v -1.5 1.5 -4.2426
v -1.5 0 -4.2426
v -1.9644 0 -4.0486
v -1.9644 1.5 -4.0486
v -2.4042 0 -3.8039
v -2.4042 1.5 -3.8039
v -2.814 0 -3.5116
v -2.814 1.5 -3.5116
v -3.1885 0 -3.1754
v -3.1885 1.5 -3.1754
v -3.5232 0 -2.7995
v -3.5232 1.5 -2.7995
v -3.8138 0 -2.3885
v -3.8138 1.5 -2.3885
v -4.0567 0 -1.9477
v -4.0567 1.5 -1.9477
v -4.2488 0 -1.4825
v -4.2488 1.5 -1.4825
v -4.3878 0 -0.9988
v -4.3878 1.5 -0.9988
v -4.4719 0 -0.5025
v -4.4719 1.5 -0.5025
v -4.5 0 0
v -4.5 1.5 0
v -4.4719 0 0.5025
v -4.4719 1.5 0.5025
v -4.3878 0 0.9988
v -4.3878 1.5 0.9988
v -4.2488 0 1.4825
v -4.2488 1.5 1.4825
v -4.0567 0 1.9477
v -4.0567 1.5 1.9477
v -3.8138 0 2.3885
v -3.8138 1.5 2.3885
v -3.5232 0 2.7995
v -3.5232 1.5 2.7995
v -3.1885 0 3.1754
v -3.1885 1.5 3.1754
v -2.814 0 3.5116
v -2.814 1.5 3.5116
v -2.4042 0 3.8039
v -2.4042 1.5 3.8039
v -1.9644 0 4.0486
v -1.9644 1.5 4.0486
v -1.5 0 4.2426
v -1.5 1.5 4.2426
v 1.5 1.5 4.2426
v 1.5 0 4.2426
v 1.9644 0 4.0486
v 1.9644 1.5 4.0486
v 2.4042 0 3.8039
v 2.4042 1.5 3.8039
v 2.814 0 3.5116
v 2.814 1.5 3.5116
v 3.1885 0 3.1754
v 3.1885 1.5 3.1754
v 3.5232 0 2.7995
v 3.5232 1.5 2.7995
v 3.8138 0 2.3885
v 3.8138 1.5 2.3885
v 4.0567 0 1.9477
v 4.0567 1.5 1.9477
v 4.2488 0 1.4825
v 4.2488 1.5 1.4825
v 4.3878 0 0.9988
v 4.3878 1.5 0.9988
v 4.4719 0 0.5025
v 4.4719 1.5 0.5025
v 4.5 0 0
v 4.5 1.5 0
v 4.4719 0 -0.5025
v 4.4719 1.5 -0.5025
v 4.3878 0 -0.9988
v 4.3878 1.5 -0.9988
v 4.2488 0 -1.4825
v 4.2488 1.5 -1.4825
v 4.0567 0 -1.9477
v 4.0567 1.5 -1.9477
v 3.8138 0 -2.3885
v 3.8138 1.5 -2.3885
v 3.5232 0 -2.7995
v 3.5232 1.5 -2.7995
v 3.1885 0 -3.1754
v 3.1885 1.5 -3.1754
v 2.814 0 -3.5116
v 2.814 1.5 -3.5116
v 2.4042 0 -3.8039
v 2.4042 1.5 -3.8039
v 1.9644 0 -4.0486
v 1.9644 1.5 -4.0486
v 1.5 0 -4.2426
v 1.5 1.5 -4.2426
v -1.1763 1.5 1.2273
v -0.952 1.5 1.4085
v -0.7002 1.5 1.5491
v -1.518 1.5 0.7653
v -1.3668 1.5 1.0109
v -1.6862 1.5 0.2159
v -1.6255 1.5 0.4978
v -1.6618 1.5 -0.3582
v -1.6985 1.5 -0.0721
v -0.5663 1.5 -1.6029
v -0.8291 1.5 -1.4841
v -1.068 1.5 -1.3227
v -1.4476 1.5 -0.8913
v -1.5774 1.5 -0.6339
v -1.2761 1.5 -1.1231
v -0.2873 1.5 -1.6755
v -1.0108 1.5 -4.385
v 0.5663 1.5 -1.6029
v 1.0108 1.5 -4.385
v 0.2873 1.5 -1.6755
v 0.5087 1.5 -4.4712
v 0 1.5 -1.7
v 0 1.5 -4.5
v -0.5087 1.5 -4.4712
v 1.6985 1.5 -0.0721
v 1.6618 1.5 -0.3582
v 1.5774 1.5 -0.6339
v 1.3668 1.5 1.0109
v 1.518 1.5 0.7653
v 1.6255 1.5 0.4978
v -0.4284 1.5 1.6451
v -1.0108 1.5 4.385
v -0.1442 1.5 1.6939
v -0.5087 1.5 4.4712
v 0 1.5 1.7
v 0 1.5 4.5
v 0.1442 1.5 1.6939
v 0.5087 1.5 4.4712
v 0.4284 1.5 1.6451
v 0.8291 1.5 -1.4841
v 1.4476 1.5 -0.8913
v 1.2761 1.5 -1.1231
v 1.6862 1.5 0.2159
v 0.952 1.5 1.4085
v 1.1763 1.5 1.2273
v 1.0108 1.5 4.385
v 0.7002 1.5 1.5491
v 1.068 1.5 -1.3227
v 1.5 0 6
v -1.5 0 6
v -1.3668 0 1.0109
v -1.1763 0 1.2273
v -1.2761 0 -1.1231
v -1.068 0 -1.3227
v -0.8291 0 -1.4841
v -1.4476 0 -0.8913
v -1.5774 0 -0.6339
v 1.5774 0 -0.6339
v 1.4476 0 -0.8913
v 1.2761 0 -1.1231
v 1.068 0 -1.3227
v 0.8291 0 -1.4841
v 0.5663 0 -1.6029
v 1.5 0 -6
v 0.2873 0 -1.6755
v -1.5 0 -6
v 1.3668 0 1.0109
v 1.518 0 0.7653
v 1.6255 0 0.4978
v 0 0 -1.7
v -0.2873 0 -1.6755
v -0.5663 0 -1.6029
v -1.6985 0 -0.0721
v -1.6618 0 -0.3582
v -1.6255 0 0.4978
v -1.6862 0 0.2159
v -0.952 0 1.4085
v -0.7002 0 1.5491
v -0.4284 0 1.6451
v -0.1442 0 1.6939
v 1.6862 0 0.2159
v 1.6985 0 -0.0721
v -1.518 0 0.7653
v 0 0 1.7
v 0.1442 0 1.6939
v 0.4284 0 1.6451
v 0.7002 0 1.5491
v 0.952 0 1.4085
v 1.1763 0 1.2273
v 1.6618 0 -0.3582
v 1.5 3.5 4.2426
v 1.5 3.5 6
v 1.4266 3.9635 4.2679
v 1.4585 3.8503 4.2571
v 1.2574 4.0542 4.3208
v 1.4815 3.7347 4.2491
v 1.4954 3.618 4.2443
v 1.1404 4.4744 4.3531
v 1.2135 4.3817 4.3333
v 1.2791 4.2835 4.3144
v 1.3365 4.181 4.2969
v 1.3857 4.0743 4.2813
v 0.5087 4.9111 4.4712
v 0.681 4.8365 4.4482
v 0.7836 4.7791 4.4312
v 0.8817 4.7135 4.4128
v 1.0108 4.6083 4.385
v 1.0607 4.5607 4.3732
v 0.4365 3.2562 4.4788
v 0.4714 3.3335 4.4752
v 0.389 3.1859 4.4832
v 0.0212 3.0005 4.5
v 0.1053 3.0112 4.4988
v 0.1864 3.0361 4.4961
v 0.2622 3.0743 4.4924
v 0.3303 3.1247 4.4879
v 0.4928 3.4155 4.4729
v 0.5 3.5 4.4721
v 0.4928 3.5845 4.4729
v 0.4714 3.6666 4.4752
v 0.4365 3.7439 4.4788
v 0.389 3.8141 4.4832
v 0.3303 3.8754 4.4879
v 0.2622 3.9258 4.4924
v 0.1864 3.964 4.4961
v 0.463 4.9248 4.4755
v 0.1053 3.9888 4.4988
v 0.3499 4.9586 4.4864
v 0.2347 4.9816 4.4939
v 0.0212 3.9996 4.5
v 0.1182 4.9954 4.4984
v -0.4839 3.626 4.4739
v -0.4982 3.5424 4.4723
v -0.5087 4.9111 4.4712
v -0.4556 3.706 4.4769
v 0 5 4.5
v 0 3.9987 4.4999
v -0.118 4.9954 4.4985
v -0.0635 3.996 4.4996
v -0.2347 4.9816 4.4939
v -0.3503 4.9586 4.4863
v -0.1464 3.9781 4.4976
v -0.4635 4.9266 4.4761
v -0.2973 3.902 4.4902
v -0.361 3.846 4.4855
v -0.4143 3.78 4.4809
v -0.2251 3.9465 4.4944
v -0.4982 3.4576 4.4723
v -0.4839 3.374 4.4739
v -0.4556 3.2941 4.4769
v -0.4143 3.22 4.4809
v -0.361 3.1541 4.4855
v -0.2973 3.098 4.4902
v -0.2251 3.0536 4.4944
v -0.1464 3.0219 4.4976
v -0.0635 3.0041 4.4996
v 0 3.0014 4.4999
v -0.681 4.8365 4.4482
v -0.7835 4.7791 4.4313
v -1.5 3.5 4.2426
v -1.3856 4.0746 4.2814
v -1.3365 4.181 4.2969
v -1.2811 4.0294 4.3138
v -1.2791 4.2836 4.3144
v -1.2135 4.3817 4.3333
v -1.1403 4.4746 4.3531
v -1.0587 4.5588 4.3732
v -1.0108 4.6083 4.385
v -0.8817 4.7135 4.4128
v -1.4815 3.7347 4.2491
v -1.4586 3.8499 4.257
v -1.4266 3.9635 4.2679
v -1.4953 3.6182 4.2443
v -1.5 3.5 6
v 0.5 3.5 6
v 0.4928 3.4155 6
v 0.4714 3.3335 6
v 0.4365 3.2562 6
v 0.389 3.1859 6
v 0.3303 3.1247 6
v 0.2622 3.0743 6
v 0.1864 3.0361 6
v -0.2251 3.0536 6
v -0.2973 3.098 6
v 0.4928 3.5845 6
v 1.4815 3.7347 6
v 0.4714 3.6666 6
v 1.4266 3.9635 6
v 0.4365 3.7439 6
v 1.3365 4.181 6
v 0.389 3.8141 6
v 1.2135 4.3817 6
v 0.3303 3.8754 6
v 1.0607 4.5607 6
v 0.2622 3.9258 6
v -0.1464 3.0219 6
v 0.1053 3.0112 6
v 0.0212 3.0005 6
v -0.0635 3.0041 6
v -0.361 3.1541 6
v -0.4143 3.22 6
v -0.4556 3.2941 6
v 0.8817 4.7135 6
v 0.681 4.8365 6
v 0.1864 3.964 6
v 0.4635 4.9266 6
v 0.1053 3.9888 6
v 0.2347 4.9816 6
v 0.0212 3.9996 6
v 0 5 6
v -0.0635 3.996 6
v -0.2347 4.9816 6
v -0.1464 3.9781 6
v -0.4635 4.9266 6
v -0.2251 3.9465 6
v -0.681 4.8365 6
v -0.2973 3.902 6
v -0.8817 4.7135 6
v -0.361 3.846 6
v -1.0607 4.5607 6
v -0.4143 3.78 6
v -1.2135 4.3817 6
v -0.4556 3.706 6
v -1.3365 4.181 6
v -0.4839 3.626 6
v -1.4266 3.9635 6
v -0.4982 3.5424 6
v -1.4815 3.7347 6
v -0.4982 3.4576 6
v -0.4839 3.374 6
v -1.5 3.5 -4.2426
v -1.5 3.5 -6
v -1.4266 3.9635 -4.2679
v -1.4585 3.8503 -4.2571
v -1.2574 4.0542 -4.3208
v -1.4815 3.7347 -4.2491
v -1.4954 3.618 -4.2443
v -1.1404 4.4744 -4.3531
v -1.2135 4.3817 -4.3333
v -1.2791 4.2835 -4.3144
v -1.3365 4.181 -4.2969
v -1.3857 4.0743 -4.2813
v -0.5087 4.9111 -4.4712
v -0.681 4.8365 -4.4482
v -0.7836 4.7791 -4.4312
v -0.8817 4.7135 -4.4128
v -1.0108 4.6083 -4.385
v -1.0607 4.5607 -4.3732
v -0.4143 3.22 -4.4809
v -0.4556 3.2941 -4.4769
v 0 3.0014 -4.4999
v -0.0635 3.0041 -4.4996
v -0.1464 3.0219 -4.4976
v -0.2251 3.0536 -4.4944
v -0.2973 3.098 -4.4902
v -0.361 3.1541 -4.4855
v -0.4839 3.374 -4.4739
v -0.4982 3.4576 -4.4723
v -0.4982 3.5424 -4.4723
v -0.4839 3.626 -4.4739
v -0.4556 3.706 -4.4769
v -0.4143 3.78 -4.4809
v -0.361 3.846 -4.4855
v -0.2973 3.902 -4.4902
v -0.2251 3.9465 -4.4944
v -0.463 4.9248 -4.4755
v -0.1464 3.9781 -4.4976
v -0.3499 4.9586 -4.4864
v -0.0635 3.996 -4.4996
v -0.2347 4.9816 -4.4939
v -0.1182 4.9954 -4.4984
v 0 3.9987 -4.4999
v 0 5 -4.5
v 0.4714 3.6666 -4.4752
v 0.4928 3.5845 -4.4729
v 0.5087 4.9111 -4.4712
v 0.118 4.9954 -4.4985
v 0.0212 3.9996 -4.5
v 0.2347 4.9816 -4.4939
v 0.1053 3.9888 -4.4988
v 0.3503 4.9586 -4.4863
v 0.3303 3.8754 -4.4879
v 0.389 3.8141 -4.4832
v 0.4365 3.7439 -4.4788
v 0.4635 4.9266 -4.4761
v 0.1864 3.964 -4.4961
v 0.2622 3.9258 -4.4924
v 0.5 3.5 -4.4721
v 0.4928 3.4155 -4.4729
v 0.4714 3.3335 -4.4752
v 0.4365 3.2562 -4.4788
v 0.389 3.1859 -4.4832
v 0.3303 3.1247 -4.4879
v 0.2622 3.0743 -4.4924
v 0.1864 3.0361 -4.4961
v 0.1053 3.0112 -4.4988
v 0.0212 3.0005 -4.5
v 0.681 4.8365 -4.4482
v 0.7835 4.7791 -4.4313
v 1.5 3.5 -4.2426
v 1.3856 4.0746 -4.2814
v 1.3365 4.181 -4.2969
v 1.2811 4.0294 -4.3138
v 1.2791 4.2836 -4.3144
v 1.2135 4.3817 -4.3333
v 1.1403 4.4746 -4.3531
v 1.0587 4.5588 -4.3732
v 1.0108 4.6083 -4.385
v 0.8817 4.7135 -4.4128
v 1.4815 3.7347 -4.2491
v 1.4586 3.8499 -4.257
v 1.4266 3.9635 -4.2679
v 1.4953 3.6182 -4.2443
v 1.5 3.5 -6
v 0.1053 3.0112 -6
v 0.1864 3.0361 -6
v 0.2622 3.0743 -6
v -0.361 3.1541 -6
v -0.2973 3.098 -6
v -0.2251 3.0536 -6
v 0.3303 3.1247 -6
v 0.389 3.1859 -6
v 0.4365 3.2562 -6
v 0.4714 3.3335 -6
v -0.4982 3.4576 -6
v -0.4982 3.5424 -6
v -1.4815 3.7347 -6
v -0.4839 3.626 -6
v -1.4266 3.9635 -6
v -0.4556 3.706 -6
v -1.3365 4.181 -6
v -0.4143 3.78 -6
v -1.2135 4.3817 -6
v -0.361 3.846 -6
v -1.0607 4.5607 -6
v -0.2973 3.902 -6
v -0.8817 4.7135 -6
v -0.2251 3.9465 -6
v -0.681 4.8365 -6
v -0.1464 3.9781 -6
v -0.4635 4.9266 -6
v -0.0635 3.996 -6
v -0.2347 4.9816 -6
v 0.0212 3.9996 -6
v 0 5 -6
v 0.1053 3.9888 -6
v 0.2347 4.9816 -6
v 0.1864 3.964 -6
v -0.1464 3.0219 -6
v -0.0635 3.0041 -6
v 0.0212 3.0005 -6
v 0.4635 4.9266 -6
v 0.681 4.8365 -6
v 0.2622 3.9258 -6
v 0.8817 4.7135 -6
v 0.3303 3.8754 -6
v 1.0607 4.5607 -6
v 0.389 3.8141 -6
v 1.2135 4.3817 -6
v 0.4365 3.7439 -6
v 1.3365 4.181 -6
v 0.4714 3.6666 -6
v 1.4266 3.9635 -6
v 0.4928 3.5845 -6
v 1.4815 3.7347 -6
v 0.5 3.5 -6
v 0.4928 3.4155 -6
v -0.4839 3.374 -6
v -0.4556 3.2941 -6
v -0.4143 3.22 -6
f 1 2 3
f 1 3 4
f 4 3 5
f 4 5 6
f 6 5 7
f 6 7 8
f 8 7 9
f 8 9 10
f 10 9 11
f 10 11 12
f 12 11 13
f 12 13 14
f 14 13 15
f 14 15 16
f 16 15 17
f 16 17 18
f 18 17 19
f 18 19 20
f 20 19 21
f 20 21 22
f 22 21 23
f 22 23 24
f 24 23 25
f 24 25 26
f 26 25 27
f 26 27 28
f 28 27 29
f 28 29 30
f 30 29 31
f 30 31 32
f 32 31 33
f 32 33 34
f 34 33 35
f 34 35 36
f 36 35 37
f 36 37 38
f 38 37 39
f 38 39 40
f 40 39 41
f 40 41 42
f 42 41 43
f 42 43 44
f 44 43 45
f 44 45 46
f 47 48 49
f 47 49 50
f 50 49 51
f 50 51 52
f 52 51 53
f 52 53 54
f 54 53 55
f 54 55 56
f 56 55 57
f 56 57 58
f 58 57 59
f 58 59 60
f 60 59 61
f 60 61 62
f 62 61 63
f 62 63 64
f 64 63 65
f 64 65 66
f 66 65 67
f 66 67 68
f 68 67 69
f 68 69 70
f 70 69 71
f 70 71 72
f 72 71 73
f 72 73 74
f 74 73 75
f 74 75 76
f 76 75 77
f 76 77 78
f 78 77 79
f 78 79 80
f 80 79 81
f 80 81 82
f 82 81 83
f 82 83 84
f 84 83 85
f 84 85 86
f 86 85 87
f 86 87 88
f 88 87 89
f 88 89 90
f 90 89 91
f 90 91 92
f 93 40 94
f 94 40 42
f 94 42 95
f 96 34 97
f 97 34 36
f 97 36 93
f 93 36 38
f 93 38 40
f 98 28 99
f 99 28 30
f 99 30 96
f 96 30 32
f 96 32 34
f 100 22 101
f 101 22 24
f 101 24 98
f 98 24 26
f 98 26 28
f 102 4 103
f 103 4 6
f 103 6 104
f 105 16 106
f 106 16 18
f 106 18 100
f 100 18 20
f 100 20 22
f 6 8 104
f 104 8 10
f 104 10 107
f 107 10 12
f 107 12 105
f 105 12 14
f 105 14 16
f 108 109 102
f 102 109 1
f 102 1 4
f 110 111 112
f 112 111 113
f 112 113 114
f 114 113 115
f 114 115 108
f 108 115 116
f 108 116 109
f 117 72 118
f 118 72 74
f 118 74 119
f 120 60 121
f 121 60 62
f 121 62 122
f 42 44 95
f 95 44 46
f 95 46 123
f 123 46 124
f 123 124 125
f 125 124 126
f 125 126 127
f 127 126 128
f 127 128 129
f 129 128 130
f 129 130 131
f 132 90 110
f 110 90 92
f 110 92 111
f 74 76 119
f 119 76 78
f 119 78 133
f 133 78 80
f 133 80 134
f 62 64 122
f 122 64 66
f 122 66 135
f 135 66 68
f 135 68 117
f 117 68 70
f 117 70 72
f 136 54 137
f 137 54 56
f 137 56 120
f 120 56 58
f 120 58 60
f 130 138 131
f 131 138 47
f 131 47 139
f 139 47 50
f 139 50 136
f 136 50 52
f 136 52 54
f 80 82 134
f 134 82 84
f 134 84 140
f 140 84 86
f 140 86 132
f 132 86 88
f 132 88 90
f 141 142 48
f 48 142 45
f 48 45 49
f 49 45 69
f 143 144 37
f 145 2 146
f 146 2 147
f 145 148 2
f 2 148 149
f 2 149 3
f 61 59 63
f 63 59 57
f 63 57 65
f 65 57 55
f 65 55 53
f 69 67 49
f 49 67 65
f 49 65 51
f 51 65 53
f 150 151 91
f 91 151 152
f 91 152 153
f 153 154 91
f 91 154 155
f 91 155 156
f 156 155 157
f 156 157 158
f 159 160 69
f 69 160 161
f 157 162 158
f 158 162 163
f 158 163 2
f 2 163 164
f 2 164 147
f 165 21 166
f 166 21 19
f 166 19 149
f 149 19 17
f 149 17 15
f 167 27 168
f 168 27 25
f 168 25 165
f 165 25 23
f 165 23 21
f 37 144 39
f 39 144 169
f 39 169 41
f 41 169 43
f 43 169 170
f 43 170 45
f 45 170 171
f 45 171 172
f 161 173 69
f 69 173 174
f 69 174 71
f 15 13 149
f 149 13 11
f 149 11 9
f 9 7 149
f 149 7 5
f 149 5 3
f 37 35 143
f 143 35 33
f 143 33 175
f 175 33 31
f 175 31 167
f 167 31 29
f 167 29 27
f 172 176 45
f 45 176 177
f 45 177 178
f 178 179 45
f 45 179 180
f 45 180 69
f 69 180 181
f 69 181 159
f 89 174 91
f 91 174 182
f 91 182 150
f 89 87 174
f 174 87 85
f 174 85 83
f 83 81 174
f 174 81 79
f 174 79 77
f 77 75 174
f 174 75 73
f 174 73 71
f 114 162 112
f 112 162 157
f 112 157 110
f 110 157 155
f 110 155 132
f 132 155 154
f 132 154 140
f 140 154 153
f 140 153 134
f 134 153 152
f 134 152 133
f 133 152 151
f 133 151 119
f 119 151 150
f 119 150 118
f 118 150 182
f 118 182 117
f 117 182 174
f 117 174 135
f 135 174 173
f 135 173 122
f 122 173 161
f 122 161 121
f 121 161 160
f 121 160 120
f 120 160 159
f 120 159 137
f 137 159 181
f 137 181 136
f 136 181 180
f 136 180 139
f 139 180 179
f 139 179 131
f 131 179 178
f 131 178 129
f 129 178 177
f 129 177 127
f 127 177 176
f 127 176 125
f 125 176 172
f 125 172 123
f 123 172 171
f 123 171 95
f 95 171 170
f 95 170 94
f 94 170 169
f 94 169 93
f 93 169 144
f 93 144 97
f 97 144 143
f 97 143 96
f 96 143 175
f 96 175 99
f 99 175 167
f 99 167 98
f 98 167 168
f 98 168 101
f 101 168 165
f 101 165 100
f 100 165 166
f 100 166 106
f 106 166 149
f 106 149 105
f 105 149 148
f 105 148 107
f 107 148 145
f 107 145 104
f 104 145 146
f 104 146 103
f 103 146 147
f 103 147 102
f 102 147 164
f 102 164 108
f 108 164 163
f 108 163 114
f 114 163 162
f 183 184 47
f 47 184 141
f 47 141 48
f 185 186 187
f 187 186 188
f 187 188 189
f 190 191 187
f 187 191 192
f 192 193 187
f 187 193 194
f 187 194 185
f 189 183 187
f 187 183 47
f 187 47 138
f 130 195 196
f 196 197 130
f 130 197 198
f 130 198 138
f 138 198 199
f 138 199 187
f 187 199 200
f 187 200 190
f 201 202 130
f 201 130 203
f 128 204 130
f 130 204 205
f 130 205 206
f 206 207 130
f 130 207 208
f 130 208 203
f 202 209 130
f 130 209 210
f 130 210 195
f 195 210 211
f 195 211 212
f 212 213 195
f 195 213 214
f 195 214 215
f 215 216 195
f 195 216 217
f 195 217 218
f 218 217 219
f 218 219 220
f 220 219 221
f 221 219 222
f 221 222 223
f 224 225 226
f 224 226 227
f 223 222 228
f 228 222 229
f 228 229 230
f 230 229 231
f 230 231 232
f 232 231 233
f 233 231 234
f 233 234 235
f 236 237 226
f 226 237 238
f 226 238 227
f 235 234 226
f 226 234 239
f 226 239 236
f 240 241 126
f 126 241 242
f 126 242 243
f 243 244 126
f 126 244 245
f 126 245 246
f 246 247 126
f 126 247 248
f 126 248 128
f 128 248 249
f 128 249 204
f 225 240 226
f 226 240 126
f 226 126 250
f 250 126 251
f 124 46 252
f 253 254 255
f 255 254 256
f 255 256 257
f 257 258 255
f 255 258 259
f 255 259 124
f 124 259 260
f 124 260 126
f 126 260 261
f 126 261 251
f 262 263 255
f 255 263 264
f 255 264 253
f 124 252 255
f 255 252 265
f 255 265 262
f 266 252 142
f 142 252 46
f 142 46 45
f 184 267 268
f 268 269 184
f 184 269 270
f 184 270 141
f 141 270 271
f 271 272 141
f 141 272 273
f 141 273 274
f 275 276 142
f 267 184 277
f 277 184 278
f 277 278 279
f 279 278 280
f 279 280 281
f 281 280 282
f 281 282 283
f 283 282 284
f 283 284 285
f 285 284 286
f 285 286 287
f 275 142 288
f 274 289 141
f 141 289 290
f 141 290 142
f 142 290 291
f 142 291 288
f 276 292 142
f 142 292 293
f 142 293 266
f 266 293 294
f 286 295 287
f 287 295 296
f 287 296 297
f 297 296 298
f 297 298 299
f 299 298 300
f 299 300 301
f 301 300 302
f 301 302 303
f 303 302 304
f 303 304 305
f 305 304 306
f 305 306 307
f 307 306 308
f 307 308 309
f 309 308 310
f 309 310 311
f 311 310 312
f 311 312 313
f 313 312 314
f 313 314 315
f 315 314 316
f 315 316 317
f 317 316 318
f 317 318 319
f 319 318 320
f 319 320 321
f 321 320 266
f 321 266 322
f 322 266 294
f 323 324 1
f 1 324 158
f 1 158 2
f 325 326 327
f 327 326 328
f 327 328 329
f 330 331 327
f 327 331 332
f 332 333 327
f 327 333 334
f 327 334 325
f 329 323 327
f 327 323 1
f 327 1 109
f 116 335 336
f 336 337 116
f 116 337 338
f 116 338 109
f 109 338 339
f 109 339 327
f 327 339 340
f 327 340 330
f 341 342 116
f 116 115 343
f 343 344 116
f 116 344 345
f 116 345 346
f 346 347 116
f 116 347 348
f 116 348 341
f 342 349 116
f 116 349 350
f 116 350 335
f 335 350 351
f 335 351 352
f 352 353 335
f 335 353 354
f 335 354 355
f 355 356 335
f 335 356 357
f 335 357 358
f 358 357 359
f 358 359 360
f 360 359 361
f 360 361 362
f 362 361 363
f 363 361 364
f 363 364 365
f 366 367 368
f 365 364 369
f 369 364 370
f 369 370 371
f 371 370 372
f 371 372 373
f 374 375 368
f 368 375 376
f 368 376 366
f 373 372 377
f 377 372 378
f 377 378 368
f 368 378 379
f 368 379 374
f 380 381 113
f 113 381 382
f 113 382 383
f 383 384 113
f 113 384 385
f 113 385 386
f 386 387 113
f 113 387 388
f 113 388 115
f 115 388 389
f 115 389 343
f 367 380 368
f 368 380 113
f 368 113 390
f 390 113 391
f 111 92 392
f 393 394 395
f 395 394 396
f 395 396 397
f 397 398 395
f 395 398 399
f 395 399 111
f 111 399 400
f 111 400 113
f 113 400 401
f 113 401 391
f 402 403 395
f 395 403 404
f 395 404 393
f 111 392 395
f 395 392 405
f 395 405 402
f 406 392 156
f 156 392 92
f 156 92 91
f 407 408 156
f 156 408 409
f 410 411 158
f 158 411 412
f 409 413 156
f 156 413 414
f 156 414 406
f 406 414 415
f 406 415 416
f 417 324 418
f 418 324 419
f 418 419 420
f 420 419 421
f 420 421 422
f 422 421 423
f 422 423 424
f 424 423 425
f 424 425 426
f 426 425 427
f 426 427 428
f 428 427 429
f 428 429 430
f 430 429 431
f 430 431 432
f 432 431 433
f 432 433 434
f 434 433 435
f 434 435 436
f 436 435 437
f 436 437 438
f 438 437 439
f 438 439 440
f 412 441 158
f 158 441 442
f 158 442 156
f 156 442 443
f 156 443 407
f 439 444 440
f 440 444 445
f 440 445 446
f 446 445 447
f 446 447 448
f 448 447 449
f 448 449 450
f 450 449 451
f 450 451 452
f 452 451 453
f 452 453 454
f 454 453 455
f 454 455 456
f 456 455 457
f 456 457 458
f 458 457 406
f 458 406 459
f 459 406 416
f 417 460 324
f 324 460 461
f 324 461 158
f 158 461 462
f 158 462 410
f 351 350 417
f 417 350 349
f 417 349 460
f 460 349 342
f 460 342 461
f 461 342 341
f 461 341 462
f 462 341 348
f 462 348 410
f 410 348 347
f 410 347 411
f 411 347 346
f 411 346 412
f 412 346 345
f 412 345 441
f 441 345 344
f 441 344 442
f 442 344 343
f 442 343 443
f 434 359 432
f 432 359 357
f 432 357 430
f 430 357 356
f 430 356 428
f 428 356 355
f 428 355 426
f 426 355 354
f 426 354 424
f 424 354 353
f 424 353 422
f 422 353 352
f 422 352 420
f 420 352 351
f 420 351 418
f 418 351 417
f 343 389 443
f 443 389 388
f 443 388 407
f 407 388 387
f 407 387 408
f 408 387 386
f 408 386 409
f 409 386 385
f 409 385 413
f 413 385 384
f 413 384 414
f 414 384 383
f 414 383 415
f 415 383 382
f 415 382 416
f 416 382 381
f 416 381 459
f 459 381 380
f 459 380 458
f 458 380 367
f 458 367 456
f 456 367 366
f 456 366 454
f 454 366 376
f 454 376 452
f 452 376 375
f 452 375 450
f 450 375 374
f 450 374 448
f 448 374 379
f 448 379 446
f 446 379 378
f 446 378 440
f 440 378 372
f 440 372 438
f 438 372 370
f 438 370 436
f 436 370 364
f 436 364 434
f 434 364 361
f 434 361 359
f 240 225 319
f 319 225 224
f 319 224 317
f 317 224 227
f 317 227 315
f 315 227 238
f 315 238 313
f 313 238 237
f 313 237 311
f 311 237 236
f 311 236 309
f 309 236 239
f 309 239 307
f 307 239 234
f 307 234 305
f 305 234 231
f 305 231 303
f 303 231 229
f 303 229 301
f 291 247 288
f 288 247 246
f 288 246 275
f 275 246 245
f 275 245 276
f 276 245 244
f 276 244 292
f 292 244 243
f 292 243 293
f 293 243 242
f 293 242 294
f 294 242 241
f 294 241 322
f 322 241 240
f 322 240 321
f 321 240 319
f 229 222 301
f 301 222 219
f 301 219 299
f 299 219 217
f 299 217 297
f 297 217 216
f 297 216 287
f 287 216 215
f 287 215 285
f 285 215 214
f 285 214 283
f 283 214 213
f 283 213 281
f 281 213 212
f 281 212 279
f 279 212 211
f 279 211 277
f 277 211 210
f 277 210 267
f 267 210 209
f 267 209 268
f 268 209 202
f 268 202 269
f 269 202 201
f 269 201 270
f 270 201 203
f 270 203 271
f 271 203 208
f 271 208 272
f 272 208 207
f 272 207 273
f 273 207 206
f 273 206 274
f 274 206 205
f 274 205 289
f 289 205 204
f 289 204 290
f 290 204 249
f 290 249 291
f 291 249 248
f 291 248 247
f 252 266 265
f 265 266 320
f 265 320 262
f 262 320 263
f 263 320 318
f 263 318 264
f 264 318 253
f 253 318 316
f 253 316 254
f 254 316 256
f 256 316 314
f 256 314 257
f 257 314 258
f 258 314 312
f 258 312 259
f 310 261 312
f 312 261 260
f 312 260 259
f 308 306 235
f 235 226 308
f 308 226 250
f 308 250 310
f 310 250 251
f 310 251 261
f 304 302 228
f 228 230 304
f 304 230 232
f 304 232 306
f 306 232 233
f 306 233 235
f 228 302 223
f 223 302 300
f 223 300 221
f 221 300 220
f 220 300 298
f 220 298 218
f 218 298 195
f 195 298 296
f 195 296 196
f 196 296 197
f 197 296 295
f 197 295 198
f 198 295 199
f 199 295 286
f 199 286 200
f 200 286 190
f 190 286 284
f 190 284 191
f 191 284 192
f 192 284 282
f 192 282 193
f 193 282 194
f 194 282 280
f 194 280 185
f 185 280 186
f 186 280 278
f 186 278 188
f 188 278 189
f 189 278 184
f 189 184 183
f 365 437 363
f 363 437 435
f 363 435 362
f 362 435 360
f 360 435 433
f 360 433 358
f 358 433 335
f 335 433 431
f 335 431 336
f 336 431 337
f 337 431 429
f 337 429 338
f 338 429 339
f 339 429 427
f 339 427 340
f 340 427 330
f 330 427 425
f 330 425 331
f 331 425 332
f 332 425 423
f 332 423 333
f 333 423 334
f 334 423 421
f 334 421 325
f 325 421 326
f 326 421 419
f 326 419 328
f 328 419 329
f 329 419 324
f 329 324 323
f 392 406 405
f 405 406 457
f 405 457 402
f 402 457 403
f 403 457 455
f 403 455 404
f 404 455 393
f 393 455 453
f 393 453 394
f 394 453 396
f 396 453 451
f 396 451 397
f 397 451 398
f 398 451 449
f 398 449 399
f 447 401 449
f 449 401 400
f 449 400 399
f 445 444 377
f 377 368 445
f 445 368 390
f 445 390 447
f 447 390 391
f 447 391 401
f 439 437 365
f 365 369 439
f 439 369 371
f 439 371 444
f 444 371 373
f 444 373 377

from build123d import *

# Parameters (mm, degrees)
SKETCH1_R           = 4.5
SKETCH1_R_2         = 1.7
BOSS_EXTRUDE1_DEPTH = 1.5
BOSS_EXTRUDE2_DEPTH = 5
SKETCH4_R           = 0.5
CUT_EXTRUDE1_DEPTH  = 14.756816492
FILLET1_R           = 1.5


with BuildPart() as part:
    # Sketch1 → Boss-Extrude1 (new body)
    with BuildSketch(Plane(origin=(0, 0, 0), x_dir=(1, 0, 0), z_dir=(0, 1, 0))):
        with Locations(Location((0, 0, 0), (0, 0, 270))):
            Circle(SKETCH1_R)
        with Locations(Location((0, 0, 0), (0, 0, 270))):
            Circle(SKETCH1_R_2, mode=Mode.SUBTRACT)
    extrude(amount=BOSS_EXTRUDE1_DEPTH)

    # Sketch3 → Boss-Extrude2 (add)
    with BuildSketch(Plane(origin=(0, 0, 0), x_dir=(1, 0, 0), z_dir=(0, 1, 0))):
        with BuildLine():
            Line((-1.5, -4.242640687), (-1.5, -6))
            Line((-1.5, -6), (1.5, -6))
            Line((1.5, -6), (1.5, -4.242640687))
            ThreePointArc((1.5, -4.242640687), (0, -4.5), (-1.5, -4.242640687))
        make_face()
        with BuildLine():
            Line((-1.5, 6), (1.5, 6))
            Line((1.5, 6), (1.5, 4.242640687))
            ThreePointArc((1.5, 4.242640687), (0, 4.5), (-1.5, 4.242640687))
            Line((-1.5, 4.242640687), (-1.5, 6))
        make_face()
    extrude(amount=BOSS_EXTRUDE2_DEPTH)

    # Sketch4 → Cut-Extrude1 (cut, through all)
    with BuildSketch(Plane.XY.offset(6)):
        with Locations((0, 3.5)):
            Circle(SKETCH4_R)
    extrude(amount=-CUT_EXTRUDE1_DEPTH, mode=Mode.SUBTRACT)

    # Fillet1
    fillet1_edges = [part.edges().sort_by_distance(p)[0] for p in [
        (1.5, 5, 5.121320344),
        (-1.5, 5, 5.121320344),
        (1.5, 5, -5.121320344),
        (-1.5, 5, -5.121320344),
    ]]
    fillet(fillet1_edges, radius=FILLET1_R - 0.0001)  # a hair under: the kernel refuses the full size


solid = part.part
